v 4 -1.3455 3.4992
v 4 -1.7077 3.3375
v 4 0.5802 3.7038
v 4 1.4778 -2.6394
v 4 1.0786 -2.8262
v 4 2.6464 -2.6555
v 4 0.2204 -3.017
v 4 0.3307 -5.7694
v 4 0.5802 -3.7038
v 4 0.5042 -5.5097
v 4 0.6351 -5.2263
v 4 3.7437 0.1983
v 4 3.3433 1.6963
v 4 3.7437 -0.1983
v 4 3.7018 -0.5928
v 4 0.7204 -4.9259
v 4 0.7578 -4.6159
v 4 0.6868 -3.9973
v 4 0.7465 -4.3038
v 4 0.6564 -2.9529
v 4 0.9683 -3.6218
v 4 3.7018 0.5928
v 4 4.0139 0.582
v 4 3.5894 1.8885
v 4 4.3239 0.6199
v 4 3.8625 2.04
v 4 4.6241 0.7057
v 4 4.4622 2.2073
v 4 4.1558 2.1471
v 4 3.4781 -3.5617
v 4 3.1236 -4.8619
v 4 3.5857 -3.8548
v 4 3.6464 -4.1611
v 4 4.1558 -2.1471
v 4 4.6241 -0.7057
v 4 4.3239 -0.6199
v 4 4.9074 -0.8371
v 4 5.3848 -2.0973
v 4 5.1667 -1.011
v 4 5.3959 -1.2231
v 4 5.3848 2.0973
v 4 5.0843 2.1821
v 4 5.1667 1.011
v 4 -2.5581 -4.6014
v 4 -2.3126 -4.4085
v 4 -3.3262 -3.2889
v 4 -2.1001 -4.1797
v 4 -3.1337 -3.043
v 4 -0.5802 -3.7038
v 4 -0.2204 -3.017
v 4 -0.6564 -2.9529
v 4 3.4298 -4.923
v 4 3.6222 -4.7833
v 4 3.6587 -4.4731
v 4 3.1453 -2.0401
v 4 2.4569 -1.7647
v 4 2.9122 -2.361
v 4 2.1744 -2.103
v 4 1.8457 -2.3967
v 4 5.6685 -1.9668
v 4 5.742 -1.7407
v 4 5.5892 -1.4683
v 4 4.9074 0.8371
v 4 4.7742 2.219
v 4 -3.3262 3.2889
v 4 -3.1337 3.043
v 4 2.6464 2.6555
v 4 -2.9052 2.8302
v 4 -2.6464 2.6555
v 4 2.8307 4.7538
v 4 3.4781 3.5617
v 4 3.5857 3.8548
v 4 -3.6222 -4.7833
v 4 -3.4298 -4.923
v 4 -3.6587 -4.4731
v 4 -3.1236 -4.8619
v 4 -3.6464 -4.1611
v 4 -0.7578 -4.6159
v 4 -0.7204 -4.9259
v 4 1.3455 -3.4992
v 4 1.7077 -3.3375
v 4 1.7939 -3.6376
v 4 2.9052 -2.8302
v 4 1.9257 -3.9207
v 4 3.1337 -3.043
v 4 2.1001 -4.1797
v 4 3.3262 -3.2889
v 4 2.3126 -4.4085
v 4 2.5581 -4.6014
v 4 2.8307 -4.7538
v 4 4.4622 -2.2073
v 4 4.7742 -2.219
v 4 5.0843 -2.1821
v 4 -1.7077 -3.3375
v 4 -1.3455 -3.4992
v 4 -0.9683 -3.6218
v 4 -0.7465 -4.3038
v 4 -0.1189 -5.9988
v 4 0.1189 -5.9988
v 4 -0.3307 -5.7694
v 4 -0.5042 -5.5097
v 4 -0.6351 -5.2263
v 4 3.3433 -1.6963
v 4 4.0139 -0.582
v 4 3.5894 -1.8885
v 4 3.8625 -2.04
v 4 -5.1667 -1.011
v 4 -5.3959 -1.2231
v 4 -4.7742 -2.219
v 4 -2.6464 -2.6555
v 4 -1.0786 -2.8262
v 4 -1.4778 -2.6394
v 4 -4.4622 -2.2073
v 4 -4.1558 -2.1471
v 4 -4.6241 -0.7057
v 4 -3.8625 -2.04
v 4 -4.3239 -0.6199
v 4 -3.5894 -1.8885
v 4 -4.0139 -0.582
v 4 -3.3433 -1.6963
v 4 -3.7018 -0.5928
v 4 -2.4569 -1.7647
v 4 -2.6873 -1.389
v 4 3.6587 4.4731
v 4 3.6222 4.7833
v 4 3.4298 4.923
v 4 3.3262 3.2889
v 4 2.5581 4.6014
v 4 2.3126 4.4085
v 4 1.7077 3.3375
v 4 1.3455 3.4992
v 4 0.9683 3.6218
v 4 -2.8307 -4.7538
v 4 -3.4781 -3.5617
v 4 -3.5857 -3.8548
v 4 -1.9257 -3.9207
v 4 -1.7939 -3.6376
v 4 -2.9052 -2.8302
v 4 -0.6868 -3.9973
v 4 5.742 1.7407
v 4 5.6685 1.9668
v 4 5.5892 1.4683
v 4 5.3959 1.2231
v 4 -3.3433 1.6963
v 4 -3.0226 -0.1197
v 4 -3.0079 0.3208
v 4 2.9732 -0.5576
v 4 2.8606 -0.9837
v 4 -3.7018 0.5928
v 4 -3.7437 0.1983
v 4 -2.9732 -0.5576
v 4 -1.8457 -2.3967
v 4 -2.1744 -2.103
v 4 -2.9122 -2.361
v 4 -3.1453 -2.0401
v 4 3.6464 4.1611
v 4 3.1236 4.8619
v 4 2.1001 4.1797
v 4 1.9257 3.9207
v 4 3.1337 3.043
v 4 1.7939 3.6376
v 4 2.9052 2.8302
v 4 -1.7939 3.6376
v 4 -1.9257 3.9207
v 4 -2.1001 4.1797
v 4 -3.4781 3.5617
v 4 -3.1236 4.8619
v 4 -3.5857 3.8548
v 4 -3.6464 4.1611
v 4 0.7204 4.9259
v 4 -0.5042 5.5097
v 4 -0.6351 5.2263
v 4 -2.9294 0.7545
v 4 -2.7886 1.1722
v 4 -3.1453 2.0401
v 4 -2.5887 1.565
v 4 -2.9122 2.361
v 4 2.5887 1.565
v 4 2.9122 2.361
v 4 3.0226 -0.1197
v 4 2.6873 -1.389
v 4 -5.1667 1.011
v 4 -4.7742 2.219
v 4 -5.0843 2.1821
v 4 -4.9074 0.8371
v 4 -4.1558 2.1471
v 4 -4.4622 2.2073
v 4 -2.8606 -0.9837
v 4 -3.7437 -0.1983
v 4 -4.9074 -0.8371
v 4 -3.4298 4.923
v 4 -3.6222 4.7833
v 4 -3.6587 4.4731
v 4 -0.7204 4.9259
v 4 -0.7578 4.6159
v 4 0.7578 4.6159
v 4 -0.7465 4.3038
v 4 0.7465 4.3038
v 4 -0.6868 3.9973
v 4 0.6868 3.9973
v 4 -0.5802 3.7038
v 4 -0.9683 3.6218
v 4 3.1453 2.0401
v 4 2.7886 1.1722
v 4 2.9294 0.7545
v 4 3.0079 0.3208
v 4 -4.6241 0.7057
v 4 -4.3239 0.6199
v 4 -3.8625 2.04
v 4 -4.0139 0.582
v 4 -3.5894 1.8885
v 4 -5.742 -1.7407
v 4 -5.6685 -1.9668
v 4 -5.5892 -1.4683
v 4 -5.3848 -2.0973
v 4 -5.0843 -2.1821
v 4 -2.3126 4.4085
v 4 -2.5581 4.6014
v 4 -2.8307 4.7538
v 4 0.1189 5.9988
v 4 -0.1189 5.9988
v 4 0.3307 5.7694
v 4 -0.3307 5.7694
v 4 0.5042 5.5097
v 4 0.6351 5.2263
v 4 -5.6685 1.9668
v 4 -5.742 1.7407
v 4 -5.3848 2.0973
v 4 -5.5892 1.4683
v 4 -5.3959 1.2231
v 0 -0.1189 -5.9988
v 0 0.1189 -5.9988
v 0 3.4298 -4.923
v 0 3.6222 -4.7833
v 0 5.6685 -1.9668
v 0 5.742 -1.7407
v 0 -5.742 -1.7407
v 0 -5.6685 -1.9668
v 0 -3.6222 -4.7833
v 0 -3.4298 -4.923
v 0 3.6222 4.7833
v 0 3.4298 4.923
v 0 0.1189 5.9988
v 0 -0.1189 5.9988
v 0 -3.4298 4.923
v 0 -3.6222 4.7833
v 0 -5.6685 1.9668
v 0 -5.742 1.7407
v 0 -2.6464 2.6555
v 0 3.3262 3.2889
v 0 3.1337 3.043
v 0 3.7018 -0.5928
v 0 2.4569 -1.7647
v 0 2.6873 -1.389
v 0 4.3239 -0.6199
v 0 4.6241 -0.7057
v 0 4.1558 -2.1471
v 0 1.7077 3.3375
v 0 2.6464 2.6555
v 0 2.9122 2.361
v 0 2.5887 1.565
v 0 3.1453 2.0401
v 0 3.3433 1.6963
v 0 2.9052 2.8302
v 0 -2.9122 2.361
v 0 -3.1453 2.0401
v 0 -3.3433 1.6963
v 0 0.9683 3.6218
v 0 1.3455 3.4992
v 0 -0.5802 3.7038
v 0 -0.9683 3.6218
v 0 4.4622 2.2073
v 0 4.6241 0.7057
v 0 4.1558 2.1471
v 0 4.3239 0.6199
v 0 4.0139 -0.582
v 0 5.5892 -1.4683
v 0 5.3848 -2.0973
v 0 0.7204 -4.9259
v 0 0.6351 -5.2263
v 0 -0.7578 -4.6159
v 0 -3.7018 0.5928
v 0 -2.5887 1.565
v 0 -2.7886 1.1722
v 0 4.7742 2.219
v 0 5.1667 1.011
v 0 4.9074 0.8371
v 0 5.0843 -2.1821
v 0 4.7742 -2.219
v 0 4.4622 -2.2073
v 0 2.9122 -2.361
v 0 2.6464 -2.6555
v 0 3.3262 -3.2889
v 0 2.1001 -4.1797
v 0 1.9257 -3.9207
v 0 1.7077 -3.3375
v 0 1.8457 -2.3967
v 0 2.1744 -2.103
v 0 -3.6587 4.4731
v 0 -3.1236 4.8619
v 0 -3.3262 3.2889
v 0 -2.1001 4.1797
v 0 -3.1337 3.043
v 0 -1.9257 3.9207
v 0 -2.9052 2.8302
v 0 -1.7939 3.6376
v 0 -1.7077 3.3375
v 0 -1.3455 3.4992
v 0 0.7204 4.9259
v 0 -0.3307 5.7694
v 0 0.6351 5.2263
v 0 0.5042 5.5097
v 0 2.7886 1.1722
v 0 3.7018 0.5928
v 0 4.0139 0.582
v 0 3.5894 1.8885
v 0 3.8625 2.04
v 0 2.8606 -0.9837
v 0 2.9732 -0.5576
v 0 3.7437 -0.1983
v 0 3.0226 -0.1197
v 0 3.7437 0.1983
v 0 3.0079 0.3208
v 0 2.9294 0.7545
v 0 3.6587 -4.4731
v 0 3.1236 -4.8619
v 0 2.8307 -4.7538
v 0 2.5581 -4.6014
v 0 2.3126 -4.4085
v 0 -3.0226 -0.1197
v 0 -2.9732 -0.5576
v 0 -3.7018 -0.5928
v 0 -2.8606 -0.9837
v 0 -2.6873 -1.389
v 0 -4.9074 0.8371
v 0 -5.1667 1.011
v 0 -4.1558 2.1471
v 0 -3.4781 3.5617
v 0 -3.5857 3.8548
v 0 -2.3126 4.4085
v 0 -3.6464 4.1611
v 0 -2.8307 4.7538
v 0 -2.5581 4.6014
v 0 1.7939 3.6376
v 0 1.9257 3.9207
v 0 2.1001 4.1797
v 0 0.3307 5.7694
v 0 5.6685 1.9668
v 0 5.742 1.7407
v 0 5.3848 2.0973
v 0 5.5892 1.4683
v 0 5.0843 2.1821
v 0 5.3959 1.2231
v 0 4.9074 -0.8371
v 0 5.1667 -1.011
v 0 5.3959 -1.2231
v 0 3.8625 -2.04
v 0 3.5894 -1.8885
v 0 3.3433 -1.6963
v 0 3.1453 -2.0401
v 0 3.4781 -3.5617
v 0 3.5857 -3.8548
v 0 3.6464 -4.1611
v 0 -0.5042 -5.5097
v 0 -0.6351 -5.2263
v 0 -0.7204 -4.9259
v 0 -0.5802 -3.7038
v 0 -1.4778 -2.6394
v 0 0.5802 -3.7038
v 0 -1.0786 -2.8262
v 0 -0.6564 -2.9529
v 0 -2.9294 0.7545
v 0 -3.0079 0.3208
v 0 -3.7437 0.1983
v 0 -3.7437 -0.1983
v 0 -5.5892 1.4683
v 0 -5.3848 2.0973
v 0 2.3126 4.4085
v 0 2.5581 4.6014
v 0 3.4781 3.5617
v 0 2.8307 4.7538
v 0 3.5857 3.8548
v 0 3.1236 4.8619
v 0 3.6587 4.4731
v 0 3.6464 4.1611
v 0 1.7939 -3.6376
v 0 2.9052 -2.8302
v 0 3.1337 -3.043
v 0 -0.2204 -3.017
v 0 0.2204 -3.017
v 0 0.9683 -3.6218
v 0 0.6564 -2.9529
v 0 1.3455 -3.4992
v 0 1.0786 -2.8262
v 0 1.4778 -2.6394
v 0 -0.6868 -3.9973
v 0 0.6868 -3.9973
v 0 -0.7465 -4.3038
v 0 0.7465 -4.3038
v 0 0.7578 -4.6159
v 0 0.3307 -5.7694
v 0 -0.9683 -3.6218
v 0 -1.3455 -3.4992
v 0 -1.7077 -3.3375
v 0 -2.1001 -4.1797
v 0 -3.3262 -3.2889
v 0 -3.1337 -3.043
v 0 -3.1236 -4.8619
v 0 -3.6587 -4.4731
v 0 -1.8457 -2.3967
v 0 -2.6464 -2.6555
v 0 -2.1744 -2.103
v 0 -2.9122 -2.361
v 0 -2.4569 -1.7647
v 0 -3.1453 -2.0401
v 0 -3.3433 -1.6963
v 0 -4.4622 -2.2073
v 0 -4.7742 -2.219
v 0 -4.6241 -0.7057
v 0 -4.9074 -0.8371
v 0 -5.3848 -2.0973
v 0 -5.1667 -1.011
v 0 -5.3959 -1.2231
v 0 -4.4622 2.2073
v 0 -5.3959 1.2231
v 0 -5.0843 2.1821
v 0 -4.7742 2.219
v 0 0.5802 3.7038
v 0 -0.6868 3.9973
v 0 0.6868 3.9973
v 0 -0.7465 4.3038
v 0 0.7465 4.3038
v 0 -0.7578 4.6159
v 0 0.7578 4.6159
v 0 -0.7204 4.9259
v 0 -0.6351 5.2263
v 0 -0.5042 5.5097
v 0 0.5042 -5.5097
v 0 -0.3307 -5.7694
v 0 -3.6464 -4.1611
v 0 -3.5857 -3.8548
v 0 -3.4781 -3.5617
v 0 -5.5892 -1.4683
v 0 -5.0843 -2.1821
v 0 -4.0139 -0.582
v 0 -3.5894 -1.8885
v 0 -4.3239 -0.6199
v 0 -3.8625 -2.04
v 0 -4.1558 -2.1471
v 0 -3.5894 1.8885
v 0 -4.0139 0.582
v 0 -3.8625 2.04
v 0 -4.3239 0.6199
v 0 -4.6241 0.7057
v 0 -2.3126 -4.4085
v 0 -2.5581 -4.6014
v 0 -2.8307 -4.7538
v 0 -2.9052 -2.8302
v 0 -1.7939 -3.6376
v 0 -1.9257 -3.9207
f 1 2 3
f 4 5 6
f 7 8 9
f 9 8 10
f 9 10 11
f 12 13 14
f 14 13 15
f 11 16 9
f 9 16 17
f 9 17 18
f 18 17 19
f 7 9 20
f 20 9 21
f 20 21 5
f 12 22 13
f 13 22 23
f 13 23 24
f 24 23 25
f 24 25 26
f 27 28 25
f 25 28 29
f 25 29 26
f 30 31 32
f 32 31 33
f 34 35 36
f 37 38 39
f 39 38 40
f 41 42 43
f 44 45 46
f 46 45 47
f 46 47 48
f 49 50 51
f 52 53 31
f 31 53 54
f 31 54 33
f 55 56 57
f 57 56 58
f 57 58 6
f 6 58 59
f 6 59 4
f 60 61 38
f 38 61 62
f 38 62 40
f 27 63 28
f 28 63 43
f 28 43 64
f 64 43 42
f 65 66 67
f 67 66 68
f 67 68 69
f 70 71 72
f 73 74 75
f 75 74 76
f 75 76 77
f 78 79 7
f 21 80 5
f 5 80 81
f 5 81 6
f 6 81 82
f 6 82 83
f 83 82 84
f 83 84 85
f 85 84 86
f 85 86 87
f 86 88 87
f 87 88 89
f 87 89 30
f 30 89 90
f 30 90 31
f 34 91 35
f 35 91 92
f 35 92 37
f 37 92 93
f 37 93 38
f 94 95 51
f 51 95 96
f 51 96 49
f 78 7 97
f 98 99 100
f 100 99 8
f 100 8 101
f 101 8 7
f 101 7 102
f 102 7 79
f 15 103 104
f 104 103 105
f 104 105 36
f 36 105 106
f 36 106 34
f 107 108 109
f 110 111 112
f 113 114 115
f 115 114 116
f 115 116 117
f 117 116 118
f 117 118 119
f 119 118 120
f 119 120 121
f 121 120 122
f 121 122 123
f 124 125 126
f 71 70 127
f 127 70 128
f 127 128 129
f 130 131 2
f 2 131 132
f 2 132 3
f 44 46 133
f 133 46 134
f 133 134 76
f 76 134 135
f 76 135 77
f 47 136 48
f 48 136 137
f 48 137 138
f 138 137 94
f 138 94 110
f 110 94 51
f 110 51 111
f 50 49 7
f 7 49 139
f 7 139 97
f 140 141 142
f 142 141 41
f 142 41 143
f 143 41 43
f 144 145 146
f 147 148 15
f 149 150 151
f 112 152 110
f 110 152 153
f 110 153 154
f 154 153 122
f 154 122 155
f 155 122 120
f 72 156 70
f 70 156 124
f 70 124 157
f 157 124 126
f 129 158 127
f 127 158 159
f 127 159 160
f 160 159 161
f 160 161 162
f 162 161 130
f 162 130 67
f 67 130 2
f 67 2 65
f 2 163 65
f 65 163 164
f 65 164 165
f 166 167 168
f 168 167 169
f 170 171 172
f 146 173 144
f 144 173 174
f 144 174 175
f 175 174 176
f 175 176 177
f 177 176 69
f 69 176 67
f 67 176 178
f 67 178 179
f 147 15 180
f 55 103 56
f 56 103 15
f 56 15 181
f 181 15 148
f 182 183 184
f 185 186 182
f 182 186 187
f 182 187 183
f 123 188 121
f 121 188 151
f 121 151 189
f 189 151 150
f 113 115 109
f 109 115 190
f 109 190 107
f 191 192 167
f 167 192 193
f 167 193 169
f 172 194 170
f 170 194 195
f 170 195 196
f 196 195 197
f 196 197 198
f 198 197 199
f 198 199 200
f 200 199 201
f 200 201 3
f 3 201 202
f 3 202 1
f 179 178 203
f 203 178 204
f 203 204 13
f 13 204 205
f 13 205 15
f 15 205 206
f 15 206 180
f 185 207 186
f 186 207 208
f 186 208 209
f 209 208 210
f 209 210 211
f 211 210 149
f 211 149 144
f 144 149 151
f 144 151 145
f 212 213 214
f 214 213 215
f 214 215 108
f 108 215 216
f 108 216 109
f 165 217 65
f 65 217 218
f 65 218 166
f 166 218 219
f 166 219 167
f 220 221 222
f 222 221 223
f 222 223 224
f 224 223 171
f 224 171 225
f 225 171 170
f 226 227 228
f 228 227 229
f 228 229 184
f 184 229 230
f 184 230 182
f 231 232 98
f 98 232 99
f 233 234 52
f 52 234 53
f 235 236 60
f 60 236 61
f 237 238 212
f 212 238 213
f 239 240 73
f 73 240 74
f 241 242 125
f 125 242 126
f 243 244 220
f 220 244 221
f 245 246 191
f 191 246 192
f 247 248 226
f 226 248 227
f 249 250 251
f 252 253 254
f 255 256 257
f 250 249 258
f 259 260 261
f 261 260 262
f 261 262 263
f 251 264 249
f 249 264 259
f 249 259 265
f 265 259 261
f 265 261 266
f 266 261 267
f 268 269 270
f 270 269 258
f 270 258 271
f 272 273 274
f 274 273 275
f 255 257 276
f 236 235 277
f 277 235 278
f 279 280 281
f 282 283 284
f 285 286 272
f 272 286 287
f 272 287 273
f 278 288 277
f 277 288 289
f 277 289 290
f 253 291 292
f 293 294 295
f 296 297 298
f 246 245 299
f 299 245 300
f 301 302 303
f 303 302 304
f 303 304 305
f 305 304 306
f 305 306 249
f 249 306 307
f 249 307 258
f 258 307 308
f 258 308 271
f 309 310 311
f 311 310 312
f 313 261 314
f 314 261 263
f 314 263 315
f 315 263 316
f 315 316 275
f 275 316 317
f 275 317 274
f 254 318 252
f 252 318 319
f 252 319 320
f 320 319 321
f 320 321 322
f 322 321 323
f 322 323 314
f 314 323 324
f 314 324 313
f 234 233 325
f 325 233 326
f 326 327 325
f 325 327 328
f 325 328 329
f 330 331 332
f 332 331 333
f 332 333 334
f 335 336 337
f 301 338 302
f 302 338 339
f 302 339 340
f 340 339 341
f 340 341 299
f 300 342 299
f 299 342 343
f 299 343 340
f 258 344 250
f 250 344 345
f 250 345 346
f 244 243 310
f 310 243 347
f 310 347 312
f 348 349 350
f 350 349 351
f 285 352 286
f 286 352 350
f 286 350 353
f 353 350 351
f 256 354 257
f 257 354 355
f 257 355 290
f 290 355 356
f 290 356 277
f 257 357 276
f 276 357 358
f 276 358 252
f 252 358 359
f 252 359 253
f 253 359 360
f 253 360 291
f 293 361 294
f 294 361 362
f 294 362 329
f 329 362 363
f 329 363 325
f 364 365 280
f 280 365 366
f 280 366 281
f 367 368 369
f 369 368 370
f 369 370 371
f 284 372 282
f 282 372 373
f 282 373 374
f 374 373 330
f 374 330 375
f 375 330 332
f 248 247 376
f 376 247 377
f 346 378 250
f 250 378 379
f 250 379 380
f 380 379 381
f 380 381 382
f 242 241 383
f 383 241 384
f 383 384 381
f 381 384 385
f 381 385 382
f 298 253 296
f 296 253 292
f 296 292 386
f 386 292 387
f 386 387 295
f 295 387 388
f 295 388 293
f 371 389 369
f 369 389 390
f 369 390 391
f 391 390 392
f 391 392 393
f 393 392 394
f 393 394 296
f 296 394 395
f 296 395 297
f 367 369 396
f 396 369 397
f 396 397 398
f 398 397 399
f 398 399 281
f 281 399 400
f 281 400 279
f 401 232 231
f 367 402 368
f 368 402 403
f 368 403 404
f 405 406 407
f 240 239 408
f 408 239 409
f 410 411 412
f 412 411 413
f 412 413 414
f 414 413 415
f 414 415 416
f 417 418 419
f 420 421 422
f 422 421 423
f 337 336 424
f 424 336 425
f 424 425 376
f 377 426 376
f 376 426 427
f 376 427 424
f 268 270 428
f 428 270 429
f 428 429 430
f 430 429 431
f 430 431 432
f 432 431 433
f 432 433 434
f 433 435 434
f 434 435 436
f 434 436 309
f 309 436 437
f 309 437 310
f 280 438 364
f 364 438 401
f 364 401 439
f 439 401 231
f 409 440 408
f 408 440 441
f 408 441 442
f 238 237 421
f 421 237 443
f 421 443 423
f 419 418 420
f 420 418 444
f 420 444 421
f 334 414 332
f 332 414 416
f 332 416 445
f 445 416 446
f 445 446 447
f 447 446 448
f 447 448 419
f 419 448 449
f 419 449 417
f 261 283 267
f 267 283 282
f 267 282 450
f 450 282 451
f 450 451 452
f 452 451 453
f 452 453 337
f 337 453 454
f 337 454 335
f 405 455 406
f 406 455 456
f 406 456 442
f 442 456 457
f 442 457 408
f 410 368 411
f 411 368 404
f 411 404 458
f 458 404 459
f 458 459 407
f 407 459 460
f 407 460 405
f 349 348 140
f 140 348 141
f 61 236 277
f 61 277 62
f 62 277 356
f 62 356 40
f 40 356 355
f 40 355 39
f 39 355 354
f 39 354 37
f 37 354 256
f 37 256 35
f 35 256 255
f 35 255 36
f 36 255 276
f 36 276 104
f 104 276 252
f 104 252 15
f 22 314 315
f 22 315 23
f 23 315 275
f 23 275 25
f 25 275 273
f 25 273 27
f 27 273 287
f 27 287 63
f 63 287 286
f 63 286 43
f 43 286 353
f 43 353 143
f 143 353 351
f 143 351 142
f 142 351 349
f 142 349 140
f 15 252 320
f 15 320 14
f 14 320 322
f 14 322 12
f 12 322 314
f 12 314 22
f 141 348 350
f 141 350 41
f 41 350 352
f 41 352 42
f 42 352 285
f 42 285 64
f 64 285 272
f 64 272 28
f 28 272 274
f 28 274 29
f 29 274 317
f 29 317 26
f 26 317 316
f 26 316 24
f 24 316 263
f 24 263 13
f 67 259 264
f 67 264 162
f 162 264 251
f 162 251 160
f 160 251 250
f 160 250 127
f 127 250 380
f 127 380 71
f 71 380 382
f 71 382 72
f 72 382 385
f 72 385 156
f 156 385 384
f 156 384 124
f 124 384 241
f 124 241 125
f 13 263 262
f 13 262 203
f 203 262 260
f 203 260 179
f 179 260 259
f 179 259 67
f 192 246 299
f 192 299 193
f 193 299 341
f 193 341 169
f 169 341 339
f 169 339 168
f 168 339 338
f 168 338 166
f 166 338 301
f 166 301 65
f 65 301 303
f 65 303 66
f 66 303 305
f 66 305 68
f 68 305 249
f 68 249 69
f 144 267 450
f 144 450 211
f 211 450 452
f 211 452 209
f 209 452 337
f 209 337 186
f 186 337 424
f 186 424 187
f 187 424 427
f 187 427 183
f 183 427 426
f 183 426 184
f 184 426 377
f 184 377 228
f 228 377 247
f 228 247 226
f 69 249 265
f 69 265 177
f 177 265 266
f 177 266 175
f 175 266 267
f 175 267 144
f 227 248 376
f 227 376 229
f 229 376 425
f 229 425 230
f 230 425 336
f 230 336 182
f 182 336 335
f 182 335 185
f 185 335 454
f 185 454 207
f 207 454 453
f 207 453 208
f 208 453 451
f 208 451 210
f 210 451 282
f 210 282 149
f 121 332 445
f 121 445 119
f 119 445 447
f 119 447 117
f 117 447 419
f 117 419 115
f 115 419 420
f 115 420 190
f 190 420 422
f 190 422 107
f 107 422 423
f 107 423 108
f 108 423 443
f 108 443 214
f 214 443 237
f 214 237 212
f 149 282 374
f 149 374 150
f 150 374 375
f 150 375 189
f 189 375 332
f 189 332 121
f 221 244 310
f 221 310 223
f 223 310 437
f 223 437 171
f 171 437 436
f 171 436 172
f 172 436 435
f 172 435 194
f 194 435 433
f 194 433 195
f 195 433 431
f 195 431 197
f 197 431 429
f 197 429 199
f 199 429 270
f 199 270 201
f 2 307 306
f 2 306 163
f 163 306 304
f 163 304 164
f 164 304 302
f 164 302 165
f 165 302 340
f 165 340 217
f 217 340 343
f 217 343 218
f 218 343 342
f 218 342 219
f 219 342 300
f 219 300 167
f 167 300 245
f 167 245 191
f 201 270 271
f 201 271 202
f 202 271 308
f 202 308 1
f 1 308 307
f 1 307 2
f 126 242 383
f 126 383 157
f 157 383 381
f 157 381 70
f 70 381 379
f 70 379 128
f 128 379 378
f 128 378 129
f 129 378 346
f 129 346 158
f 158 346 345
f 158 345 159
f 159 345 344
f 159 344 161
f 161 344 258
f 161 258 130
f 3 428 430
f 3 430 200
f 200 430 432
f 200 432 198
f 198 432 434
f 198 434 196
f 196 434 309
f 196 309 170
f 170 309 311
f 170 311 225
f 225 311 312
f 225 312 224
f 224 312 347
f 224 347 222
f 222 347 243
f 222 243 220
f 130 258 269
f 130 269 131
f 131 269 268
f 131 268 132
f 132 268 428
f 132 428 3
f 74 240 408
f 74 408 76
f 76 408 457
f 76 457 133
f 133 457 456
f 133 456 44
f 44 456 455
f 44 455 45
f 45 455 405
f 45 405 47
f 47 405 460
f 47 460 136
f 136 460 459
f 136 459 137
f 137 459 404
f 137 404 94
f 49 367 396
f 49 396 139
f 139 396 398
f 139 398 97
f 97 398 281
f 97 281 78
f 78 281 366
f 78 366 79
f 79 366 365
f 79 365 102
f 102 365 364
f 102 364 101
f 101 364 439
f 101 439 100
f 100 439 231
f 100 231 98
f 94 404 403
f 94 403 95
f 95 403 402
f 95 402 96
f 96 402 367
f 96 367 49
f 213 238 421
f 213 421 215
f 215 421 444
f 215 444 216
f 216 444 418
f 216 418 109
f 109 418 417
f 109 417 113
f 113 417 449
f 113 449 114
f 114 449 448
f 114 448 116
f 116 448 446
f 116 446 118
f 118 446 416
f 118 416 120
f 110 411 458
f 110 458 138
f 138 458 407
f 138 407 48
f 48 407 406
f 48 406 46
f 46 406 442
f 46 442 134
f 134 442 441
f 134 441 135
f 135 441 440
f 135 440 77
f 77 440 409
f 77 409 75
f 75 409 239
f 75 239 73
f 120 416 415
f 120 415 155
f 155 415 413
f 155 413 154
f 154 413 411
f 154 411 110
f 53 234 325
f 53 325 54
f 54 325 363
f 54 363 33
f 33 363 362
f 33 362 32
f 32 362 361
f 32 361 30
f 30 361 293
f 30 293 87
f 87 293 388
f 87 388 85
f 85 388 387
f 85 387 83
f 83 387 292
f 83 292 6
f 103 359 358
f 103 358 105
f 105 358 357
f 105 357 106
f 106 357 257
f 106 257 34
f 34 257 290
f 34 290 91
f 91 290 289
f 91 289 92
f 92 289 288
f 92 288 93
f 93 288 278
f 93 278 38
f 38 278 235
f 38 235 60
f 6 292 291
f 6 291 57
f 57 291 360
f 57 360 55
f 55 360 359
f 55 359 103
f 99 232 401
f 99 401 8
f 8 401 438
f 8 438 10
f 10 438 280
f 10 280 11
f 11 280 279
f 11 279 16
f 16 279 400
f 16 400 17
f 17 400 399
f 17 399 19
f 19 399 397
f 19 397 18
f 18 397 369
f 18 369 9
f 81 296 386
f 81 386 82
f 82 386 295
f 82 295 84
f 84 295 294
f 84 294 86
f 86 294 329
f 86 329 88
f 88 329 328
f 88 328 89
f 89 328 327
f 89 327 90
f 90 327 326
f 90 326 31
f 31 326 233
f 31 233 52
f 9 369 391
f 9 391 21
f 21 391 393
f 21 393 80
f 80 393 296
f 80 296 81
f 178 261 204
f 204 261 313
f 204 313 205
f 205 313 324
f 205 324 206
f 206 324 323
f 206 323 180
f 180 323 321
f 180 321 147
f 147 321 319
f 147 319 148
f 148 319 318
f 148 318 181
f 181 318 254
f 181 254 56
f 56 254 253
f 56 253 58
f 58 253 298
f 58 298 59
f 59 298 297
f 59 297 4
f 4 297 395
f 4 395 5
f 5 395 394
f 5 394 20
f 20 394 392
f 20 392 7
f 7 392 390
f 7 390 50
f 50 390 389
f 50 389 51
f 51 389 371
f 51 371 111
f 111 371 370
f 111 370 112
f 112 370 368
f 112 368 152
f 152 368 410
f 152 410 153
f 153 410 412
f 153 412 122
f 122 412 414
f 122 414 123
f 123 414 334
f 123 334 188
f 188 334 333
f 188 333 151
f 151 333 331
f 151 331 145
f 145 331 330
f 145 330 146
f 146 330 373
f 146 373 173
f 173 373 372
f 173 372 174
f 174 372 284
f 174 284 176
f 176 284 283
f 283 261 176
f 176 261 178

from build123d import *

# Parameters (mm, degrees)
BASPROSKE_W         = 4
BASPROSKE_H         = 6
TOOTHCUT_DEPTH      = 10.38083152
TEETHCUTS_COUNT     = 10
TEETHCUTS_ANGLE     = 324
BORSKE_R            = 3.025
BORE_DEPTH          = 50.0000508
BOSS_EXTRUDE1_DEPTH = 4


with BuildPart() as part:
    # BasProSke → Base-Revolve (revolve)
    with BuildSketch(Plane(origin=(0, 0, 0), x_dir=(1, 0, 0), z_dir=(0, 1, 0)), mode=Mode.PRIVATE) as base_revolve_sk:
        with Locations((2, 3)):
            Rectangle(BASPROSKE_W, BASPROSKE_H)
    revolve(base_revolve_sk.sketch.rotate(Axis((-10, 0, 0), (1, 0, 0)), 180), axis=Axis((-10, 0, 0), (1, 0, 0)))

    # TooCutSke → ToothCut (cut, through all)
    with BuildSketch(Plane(origin=(0, 0, 0), x_dir=(0, 0, -1), z_dir=(1, 0, 0))):
        with BuildLine():
            ThreePointArc((0.59278292, 3.701838653), (0, 3.749), (-0.59278292, 3.701838653))
            ThreePointArc((-0.59278292, 3.701838653), (-0.846593509, 4.924114224), (-1.775771316, 5.757784417))
            ThreePointArc((-1.775771316, 5.757784417), (0, 6.0254), (1.775771316, 5.757784417))
            ThreePointArc((1.775771316, 5.757784417), (0.846593509, 4.924114224), (0.59278292, 3.701838653))
        make_face()
    toothcut = extrude(amount=TOOTHCUT_DEPTH, mode=Mode.SUBTRACT)

    # TeethCuts: ToothCut ×10 about axis
    teethcuts_axis = Axis((-10, 0, 0), (1, 0, 0))
    for i in range(1, TEETHCUTS_COUNT):
        add(toothcut.rotate(teethcuts_axis, i * TEETHCUTS_ANGLE / (TEETHCUTS_COUNT - 1)), mode=Mode.SUBTRACT)

    # BorSke → Bore (cut, symmetric)
    with BuildSketch(Plane(origin=(0, 0, 0), x_dir=(0, 0, -1), z_dir=(1, 0, 0))):
        with Locations(Location((0, 0, 0), (0, 0, 180))):
            Circle(BORSKE_R)
    extrude(amount=BORE_DEPTH, both=True, mode=Mode.SUBTRACT)

    # Sketch1 → Boss-Extrude1 (add)
    with BuildSketch(Plane.ZY):
        with BuildLine():
            ThreePointArc((1.565, -2.588706241), (3.025, 0), (1.565, 2.588706241))
            Line((1.565, 2.588706241), (1.565, -2.588706241))
        make_face()
    extrude(amount=-BOSS_EXTRUDE1_DEPTH)


solid = part.part
